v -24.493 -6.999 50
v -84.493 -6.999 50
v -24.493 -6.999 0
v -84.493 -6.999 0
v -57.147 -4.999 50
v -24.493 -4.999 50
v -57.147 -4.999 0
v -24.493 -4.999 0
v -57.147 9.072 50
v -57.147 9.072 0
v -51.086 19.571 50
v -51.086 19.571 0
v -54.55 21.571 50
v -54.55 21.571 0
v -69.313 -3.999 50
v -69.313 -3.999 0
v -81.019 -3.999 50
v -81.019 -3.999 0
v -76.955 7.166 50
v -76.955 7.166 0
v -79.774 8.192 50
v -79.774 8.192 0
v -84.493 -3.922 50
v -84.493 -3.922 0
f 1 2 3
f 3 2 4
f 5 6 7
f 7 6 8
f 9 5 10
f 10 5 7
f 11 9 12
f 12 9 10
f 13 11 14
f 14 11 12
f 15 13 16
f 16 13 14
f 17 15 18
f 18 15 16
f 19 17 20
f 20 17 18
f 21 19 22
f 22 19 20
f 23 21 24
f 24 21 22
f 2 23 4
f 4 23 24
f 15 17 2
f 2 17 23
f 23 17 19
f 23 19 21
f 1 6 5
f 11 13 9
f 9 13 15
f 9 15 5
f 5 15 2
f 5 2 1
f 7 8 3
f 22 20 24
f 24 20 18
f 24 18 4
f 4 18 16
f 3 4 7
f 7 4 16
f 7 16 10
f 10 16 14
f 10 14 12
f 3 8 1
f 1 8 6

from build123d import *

# Parameters (mm, degrees)
SALIENTE_EXTRUIR1_DEPTH = 50
CROQUIS2_W              = 50
CROQUIS2_H              = 2
SALIENTE_EXTRUIR2_DEPTH = 20


with BuildPart() as part:
    # Croquis1 → Saliente-Extruir1 (new body)
    with BuildSketch(Plane.XY):
        Polygon((-84.492533904, -6.999380213), (-44.492533904, -6.999380213), (-44.492533904, -5.738560558), (-44.492533904, -4.999380213), (-45.492533904, -4.999380213), (-57.147376638, -4.999380213), (-57.147376638, 9.072422448), (-51.585761076, 18.705423174), (-51.085761076, 19.571448577), (-54.549862691, 21.571448577), (-69.313187577, -3.999380213), (-81.019143074, -3.999380213), (-80.530687688, -2.657360069), (-77.297371662, 6.226102703), (-76.955351518, 7.165795324), (-79.774429381, 8.191855754), (-80.129339821, 7.280632657), (-84.424349875, -3.746691195), (-84.492533904, -3.921751872), (-84.492533904, -4.109622312), align=None)
    extrude(amount=SALIENTE_EXTRUIR1_DEPTH)

    # Croquis2 → Saliente-Extruir2 (add)
    with BuildSketch(Plane(origin=(-44.492533904, 0, 0), x_dir=(0, 0, -1), z_dir=(1, 0, 0))):
        with Locations((-25, -5.999380213)):
            Rectangle(CROQUIS2_W, CROQUIS2_H)
    extrude(amount=SALIENTE_EXTRUIR2_DEPTH)


solid = part.part
